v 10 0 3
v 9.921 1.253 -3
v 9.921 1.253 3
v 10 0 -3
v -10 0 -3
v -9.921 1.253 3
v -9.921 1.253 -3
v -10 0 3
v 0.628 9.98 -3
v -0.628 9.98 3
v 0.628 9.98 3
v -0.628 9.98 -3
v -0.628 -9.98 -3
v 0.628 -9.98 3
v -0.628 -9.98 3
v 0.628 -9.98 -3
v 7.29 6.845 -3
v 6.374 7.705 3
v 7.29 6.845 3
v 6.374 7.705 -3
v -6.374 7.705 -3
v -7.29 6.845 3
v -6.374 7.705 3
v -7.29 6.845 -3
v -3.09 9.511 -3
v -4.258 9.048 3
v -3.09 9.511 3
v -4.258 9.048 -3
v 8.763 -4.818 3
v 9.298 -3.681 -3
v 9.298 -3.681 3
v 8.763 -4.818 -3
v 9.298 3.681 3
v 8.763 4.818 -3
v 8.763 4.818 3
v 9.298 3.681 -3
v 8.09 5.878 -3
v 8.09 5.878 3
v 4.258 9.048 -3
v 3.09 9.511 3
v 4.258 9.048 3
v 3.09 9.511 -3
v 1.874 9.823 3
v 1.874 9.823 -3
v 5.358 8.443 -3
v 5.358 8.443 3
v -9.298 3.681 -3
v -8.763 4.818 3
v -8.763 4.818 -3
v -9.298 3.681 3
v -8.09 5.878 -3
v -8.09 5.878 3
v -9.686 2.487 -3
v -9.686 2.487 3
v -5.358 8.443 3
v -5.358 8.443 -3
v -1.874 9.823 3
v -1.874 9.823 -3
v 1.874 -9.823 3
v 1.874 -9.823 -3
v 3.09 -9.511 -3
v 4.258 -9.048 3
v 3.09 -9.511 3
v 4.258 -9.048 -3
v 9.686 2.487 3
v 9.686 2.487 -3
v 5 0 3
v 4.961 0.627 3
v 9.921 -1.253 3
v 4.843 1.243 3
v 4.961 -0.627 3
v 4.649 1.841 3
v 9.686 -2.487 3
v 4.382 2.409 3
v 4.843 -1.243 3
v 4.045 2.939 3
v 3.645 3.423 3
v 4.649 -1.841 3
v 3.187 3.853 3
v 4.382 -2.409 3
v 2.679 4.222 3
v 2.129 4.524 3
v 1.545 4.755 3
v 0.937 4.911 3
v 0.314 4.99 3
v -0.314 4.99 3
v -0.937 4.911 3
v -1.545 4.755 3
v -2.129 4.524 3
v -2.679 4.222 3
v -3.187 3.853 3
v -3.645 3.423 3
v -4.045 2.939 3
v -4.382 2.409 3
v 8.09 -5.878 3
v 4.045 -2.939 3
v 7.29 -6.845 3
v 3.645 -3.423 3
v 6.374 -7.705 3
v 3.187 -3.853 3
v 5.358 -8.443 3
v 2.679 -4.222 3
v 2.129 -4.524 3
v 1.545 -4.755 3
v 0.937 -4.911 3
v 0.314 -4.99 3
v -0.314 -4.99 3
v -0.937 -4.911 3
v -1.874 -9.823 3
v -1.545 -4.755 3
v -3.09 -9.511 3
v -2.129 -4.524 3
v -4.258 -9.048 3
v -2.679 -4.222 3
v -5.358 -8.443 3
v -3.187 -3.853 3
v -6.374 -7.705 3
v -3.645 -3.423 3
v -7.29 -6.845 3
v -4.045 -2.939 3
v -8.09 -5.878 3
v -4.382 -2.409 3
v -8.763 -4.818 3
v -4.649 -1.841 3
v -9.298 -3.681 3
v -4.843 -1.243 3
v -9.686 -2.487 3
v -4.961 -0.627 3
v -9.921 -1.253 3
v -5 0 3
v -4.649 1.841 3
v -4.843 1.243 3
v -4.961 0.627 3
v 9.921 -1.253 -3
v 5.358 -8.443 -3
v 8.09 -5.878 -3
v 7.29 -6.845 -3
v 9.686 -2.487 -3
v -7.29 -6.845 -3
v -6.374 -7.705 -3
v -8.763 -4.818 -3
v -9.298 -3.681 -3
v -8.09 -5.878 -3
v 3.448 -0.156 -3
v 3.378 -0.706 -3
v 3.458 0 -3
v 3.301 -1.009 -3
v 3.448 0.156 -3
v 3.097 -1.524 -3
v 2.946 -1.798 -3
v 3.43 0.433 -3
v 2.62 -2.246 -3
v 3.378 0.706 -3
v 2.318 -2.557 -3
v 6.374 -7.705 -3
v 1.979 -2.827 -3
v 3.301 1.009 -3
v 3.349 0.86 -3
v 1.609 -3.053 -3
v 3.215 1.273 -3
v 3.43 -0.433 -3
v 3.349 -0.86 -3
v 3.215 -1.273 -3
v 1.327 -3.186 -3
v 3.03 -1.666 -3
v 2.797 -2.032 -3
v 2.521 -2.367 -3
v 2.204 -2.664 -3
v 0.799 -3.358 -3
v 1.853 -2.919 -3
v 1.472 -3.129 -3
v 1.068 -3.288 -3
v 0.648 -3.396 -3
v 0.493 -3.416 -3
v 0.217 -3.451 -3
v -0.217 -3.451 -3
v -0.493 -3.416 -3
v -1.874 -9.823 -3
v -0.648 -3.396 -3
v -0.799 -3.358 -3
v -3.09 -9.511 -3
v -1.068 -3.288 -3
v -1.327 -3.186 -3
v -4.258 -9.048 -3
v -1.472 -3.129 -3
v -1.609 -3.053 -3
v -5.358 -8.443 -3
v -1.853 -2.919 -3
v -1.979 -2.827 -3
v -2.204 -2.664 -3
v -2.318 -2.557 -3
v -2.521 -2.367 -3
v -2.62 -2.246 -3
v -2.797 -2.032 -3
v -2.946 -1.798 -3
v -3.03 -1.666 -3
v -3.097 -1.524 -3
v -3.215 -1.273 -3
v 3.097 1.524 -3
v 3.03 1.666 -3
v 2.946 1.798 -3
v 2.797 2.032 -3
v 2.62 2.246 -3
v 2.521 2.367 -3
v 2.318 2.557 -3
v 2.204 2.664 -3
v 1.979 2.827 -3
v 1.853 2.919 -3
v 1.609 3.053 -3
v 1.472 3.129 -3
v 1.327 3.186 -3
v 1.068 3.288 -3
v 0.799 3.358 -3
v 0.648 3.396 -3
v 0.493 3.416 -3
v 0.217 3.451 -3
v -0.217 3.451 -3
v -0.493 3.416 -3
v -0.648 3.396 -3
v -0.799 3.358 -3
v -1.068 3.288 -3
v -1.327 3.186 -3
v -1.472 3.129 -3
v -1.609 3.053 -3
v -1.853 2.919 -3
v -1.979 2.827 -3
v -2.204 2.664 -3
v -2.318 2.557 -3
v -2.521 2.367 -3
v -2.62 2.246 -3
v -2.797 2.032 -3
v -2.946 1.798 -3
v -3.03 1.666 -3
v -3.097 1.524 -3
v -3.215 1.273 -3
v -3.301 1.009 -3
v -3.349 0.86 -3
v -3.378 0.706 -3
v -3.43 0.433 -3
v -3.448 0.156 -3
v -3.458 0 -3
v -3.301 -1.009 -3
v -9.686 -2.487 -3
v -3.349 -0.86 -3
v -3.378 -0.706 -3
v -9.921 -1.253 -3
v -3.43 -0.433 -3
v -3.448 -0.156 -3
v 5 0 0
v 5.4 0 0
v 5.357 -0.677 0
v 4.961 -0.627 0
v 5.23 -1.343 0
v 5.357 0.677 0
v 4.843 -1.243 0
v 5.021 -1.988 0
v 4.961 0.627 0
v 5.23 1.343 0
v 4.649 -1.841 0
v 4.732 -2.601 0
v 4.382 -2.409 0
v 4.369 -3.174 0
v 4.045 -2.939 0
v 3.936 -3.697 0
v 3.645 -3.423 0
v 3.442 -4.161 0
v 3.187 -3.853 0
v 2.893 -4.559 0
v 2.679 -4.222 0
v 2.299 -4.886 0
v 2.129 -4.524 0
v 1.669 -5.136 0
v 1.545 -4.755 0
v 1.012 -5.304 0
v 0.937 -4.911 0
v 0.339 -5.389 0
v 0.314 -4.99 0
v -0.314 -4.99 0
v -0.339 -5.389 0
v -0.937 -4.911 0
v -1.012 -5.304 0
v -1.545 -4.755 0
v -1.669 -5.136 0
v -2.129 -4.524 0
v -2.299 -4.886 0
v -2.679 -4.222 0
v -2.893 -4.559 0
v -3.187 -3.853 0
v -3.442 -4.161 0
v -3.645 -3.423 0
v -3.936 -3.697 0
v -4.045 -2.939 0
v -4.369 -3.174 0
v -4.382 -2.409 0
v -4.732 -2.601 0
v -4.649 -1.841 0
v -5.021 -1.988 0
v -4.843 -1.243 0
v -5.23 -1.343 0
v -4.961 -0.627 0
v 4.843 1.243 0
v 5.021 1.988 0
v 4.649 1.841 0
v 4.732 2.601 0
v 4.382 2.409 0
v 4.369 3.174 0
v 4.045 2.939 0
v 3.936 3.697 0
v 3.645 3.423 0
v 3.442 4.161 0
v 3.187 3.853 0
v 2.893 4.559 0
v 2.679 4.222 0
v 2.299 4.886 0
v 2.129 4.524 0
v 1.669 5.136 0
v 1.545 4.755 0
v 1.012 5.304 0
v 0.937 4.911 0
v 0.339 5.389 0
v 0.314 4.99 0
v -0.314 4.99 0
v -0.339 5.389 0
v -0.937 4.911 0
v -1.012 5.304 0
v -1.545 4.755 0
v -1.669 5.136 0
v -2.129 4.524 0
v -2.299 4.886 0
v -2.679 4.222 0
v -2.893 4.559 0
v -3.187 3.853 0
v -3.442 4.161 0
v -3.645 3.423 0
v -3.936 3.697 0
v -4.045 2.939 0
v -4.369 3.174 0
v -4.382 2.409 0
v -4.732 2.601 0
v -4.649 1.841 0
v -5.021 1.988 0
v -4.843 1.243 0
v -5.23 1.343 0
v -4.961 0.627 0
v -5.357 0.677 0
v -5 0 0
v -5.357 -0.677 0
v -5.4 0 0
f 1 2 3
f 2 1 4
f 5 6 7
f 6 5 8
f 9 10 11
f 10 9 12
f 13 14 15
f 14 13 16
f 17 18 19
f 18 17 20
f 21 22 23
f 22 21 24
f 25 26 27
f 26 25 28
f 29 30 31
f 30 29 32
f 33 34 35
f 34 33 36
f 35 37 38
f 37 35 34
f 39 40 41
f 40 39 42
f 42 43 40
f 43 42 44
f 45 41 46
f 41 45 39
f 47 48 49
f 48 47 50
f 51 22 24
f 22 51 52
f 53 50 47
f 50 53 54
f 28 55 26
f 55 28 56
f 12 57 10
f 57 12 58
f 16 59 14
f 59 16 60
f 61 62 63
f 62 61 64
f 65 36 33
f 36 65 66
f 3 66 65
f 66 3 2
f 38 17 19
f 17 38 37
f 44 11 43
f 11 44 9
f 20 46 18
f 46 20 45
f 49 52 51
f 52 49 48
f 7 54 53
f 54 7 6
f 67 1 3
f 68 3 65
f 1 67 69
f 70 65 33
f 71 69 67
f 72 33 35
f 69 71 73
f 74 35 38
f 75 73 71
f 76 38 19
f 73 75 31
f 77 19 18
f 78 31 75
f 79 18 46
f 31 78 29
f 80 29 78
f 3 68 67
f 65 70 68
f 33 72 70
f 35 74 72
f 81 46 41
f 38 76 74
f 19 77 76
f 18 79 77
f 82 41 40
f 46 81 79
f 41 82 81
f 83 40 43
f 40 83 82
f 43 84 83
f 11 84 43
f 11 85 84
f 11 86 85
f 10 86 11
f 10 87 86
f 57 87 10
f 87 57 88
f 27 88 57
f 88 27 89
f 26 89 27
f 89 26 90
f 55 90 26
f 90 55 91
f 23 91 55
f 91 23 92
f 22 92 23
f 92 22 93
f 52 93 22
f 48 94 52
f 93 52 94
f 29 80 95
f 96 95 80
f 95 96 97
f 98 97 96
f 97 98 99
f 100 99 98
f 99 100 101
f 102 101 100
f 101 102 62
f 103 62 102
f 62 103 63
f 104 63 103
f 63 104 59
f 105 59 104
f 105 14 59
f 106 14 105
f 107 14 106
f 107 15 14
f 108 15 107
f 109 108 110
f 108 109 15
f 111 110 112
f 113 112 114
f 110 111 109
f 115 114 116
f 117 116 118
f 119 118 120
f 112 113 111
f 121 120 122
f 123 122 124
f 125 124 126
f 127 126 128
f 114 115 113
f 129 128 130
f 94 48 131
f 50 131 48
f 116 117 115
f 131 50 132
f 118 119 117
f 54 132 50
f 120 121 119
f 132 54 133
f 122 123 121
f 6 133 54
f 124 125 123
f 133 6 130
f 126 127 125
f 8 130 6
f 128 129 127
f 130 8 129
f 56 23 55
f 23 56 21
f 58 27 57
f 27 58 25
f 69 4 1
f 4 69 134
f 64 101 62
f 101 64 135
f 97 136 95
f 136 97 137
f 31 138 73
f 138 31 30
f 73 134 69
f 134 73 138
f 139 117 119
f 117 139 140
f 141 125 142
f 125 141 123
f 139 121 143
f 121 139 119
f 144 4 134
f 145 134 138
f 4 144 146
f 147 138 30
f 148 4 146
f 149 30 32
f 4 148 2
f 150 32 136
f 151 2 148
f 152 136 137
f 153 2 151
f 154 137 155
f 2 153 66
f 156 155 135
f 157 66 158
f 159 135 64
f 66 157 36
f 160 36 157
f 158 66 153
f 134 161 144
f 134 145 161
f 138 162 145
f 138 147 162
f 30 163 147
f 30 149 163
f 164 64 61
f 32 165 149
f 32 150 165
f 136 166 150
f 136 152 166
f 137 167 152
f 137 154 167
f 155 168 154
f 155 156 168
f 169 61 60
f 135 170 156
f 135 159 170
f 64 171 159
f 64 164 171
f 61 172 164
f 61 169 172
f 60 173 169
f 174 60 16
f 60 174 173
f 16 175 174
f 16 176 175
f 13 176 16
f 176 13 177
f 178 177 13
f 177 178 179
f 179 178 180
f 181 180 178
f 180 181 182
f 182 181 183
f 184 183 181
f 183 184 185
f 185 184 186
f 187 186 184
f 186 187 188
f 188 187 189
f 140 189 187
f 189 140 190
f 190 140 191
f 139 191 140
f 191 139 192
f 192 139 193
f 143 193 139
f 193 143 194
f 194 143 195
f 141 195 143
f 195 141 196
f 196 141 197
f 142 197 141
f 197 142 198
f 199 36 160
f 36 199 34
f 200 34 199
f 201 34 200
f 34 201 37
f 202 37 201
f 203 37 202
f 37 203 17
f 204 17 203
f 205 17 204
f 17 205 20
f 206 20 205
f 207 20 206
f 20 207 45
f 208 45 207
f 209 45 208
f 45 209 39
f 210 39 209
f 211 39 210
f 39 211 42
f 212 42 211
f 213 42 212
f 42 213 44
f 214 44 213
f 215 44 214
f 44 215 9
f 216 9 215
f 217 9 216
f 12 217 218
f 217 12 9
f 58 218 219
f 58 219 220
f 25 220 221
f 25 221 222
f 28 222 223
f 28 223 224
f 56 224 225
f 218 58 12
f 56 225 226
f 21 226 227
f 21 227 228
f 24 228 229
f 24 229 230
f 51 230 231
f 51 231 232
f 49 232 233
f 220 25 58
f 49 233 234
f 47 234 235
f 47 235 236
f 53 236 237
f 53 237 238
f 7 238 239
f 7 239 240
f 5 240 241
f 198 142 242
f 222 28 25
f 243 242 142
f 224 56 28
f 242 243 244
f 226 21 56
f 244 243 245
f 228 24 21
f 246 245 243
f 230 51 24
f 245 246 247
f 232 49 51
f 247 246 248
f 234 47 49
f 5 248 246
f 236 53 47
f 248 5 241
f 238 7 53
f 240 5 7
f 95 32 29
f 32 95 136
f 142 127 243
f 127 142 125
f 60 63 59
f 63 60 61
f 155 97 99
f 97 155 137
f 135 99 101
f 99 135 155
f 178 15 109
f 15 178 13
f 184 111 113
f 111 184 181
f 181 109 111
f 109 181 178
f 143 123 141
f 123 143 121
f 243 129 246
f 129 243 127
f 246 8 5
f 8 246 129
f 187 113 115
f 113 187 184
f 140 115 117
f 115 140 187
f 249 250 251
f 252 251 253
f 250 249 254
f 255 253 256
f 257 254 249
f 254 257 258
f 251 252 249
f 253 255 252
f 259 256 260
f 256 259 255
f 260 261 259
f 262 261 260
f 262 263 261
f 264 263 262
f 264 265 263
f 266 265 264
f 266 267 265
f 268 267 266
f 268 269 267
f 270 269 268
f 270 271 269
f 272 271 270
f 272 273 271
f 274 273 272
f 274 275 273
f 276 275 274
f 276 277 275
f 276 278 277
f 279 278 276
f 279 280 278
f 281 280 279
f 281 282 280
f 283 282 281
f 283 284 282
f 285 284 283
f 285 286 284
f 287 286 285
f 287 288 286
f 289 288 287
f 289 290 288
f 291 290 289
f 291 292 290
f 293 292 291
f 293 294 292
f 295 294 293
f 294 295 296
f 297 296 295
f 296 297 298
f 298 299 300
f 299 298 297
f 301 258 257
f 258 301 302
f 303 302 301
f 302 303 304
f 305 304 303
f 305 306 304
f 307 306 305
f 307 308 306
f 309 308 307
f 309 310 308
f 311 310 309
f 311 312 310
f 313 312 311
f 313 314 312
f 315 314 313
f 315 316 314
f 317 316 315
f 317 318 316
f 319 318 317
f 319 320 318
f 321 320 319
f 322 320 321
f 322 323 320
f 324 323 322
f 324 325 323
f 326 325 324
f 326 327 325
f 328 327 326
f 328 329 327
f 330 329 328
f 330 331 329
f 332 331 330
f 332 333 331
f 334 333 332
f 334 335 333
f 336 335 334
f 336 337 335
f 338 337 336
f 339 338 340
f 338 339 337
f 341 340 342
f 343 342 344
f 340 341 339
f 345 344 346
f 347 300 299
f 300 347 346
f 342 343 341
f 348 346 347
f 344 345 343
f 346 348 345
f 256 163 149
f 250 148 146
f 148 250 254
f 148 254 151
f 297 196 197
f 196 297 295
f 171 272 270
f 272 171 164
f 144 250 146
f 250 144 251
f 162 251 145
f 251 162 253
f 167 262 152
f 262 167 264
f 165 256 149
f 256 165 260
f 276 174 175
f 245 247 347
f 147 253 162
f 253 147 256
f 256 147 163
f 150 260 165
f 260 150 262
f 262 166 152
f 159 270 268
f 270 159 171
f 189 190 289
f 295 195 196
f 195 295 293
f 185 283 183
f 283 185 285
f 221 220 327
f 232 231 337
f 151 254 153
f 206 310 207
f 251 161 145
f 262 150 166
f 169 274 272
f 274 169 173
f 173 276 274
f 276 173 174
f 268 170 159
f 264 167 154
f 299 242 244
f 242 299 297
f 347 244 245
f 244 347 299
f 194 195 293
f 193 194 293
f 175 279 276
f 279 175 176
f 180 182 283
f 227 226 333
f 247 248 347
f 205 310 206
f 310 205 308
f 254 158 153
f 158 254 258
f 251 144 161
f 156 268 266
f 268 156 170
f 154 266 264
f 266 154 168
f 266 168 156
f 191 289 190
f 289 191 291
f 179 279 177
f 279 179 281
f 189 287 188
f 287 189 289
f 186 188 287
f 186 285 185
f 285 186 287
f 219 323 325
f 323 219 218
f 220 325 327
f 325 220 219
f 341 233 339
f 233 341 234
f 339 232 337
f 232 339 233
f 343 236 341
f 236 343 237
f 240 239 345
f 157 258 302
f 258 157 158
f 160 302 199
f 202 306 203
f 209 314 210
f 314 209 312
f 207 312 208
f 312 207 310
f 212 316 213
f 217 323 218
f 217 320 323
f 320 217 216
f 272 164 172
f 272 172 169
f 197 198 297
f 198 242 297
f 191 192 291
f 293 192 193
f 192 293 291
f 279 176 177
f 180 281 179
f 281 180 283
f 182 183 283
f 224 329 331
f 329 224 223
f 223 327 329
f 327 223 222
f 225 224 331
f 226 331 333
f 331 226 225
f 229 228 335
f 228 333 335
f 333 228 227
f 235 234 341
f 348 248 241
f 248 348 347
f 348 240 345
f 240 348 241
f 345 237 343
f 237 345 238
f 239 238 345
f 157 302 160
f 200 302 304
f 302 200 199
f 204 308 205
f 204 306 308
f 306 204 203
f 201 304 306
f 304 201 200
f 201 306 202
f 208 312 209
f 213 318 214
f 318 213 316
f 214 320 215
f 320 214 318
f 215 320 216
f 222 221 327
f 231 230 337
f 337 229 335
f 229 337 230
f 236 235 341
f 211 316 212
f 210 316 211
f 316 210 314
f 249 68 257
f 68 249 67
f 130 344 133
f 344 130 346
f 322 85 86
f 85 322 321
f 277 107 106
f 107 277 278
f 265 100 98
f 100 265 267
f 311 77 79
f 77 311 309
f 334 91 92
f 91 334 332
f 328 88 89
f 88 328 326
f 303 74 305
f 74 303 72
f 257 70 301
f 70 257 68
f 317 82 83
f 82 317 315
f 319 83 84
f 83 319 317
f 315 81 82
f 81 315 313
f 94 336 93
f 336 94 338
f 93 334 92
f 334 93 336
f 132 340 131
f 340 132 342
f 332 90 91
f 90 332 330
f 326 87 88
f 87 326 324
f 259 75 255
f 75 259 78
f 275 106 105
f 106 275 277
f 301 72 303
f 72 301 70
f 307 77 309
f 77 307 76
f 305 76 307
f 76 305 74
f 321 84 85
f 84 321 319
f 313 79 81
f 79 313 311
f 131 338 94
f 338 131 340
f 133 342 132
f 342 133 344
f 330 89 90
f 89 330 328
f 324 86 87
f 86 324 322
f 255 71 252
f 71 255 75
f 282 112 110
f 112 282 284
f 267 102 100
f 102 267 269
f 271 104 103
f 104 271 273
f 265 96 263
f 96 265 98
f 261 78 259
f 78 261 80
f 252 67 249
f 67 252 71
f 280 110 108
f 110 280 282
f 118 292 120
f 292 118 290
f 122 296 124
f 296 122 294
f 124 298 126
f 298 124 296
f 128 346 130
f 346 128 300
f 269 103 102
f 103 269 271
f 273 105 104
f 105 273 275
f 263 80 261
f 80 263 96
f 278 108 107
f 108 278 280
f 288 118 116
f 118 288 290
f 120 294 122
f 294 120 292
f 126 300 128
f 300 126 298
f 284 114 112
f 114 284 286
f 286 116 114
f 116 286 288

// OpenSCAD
$fn = 50;

difference() {
	union() {
		translate(v = [0, 0, -3.0]) {
			cylinder(h = 6, r = 10.0);
		}
		#translate(v = [0, 0, -6.0]) {
			cylinder(h = 6, r = 2.875);
		}
	}
	union() {
		translate(v = [0, 0, 0]) {
			rotate(a = [0, 0, 0]) {
				difference() {
					union() {
						translate(v = [0, 0, -6.0]) {
							cylinder(h = 6, r = 2.6);
						}
						translate(v = [0, 0, -3.9]) {
							cylinder(h = 3.9, r1 = 2.875, r2 = 5.4);
						}
						translate(v = [0, 0, -6.0]) {
							cylinder(h = 6, r = 2.875);
						}
						translate(v = [0, 0, -6.0]) {
							cylinder(h = 6, r = 2.6);
						}
					}
					union();
				}
			}
		}
		#cylinder(h = 3, r = 5.0);
	}
}
